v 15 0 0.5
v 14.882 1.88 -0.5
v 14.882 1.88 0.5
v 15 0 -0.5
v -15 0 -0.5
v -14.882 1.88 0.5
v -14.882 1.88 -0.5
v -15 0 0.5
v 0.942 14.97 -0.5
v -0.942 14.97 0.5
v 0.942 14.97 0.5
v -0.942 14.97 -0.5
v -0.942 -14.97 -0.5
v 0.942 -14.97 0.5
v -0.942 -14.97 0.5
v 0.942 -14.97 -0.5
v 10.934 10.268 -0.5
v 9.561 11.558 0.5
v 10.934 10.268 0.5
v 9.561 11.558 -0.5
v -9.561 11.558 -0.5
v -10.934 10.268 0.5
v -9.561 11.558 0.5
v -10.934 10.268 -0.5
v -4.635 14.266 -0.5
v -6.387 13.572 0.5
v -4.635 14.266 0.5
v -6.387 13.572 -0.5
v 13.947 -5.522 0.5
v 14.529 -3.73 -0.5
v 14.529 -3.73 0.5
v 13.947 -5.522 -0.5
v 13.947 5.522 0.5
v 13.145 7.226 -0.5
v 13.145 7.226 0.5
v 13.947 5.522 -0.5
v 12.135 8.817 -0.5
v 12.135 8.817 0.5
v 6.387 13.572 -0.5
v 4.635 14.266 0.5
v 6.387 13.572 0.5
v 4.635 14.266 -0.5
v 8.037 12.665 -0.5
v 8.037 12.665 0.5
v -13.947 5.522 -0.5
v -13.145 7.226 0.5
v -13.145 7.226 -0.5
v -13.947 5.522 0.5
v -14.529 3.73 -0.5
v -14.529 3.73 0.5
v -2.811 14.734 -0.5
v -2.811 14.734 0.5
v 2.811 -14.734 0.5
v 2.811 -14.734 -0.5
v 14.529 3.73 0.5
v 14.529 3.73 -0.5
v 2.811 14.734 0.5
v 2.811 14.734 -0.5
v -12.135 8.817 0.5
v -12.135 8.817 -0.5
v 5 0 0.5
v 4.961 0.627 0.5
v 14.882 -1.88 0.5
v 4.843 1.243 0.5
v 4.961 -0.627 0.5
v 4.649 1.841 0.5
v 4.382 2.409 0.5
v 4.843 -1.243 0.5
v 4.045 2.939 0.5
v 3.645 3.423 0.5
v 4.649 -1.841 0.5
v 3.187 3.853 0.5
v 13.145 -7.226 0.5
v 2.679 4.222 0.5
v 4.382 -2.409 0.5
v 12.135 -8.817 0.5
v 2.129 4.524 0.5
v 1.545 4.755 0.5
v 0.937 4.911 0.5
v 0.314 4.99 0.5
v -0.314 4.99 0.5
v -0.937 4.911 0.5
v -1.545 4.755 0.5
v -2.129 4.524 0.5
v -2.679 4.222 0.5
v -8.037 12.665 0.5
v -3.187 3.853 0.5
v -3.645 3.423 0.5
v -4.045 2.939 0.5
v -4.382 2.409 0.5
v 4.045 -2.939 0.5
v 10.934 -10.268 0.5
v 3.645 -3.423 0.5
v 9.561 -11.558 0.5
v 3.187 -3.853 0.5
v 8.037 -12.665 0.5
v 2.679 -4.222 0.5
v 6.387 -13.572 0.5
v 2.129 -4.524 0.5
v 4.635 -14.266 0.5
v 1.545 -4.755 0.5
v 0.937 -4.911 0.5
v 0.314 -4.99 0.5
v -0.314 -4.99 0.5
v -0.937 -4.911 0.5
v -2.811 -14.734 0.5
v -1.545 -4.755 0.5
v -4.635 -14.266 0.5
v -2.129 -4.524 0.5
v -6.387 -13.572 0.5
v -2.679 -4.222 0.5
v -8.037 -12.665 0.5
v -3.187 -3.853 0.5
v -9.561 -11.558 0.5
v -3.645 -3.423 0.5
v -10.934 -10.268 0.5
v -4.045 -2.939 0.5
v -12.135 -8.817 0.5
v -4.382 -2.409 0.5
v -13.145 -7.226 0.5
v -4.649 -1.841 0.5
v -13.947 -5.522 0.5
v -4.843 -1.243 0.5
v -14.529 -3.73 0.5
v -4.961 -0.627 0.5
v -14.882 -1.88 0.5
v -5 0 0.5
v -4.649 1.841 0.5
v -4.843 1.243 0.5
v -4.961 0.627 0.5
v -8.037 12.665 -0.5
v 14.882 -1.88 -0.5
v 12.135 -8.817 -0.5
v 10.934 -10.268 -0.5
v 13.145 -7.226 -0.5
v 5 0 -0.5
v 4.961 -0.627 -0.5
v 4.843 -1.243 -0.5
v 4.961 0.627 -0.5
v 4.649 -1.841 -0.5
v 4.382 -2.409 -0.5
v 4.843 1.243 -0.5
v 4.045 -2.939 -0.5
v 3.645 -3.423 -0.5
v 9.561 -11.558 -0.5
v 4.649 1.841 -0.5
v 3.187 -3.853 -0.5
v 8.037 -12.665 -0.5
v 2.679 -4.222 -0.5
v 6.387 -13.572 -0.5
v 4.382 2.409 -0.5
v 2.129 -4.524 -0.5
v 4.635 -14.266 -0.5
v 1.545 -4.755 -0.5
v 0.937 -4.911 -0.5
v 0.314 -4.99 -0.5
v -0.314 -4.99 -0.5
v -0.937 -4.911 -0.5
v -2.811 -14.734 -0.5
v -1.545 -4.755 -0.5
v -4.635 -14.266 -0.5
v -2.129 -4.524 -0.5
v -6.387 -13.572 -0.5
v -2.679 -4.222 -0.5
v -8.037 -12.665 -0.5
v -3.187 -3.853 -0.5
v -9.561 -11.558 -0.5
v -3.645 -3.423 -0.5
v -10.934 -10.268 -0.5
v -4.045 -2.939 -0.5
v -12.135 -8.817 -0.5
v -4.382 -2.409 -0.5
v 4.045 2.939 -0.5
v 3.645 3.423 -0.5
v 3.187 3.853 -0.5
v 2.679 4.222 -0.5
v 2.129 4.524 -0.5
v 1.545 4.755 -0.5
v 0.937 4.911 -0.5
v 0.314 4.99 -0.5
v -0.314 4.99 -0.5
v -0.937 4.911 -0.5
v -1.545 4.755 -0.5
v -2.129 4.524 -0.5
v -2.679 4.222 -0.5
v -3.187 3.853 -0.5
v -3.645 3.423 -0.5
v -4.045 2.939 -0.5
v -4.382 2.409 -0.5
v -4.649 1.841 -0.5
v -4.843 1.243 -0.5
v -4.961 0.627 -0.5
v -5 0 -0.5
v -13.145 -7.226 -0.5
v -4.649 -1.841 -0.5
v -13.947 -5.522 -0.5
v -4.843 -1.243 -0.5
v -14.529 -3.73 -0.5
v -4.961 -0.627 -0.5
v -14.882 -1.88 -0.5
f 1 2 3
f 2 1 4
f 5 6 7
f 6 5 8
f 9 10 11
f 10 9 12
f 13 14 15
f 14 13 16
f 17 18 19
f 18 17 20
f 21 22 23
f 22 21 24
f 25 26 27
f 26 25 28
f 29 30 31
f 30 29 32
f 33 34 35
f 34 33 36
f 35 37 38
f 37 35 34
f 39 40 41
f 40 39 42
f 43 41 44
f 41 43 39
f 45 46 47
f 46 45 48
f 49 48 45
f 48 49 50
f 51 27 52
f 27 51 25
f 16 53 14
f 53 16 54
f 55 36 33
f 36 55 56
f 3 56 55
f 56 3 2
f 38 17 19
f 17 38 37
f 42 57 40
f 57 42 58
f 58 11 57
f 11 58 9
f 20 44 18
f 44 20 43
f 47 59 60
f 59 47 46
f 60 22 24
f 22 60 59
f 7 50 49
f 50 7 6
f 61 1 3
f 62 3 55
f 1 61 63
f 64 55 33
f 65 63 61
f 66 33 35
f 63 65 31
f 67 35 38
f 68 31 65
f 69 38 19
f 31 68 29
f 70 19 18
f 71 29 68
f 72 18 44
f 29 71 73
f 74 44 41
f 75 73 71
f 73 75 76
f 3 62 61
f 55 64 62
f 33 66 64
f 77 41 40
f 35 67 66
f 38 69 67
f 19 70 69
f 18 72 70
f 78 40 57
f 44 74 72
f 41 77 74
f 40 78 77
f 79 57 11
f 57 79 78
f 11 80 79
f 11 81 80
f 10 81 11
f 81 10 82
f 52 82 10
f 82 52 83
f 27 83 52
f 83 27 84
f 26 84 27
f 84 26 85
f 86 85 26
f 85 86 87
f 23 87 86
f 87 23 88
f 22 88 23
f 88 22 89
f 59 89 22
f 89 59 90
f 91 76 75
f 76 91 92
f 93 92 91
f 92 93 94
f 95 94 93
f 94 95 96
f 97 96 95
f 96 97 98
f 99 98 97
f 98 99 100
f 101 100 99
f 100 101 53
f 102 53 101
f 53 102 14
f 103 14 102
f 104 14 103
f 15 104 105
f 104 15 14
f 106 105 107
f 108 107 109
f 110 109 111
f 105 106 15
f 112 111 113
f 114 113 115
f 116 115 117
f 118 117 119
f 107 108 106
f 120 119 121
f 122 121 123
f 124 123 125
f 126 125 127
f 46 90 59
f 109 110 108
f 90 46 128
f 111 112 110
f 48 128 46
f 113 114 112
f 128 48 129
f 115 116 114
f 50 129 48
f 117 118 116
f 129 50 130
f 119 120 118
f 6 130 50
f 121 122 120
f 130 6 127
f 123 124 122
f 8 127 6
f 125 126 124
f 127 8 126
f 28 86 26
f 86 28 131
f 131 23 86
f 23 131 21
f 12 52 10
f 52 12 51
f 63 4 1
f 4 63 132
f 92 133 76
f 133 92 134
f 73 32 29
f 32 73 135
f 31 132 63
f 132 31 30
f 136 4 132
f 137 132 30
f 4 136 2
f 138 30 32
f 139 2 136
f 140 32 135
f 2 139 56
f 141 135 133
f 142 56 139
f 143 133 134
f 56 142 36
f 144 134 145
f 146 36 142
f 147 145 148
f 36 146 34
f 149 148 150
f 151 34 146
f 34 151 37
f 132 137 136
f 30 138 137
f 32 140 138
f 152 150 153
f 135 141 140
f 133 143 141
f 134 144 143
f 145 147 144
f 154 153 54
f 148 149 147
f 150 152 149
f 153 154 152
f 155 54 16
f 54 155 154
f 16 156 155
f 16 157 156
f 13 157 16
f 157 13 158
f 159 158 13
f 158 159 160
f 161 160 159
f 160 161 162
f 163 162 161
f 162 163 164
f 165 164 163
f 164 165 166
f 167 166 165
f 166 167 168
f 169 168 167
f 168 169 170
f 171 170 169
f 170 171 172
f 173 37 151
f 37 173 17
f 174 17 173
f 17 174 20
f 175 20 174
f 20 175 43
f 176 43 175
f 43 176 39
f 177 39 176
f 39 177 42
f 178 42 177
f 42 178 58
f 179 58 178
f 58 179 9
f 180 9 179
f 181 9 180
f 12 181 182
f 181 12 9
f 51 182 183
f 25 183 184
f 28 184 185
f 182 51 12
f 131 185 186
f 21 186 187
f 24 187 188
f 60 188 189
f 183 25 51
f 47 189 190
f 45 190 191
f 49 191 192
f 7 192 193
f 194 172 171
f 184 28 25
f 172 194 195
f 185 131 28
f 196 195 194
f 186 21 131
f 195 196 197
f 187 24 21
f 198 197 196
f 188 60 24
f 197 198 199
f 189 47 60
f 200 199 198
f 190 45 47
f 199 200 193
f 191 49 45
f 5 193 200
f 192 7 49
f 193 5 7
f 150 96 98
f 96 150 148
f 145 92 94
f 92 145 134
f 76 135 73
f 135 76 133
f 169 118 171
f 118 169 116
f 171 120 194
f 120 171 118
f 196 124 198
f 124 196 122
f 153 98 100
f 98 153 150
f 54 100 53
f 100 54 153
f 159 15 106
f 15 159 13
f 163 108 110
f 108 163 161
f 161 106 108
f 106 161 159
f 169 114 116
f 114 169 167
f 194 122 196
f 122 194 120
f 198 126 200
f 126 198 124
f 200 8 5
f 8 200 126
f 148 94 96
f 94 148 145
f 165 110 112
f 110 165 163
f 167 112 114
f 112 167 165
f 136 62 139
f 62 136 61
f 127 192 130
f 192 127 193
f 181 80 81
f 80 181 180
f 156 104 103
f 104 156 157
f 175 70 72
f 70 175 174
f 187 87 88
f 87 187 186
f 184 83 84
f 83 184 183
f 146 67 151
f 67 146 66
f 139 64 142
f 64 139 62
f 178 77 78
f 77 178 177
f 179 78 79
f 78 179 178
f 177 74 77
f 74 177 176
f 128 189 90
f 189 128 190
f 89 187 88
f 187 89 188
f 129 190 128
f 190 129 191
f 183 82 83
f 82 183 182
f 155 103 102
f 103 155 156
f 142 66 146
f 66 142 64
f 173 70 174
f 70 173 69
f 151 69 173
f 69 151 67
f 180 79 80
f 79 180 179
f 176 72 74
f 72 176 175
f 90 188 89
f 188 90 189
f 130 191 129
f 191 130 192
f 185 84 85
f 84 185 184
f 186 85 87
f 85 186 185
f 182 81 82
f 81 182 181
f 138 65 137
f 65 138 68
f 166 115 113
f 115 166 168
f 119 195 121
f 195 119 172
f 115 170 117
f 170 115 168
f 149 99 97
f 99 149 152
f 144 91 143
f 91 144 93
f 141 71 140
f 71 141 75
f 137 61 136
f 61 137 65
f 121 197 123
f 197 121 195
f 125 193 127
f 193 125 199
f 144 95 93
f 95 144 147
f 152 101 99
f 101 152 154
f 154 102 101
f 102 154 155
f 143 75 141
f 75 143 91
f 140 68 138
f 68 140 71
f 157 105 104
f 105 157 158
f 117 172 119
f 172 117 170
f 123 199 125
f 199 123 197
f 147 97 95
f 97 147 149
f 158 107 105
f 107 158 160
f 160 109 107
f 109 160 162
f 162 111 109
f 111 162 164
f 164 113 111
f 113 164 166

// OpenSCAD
$fn = 50;


difference() {
	union() {
		translate(v = [0, 0, -0.5000000000]) {
			cylinder(h = 1, r = 15.0000000000);
		}
	}
	union() {
		translate(v = [0, 0, -100.0000000000]) {
			cylinder(h = 200, r = 5.0000000000);
		}
	}
}
